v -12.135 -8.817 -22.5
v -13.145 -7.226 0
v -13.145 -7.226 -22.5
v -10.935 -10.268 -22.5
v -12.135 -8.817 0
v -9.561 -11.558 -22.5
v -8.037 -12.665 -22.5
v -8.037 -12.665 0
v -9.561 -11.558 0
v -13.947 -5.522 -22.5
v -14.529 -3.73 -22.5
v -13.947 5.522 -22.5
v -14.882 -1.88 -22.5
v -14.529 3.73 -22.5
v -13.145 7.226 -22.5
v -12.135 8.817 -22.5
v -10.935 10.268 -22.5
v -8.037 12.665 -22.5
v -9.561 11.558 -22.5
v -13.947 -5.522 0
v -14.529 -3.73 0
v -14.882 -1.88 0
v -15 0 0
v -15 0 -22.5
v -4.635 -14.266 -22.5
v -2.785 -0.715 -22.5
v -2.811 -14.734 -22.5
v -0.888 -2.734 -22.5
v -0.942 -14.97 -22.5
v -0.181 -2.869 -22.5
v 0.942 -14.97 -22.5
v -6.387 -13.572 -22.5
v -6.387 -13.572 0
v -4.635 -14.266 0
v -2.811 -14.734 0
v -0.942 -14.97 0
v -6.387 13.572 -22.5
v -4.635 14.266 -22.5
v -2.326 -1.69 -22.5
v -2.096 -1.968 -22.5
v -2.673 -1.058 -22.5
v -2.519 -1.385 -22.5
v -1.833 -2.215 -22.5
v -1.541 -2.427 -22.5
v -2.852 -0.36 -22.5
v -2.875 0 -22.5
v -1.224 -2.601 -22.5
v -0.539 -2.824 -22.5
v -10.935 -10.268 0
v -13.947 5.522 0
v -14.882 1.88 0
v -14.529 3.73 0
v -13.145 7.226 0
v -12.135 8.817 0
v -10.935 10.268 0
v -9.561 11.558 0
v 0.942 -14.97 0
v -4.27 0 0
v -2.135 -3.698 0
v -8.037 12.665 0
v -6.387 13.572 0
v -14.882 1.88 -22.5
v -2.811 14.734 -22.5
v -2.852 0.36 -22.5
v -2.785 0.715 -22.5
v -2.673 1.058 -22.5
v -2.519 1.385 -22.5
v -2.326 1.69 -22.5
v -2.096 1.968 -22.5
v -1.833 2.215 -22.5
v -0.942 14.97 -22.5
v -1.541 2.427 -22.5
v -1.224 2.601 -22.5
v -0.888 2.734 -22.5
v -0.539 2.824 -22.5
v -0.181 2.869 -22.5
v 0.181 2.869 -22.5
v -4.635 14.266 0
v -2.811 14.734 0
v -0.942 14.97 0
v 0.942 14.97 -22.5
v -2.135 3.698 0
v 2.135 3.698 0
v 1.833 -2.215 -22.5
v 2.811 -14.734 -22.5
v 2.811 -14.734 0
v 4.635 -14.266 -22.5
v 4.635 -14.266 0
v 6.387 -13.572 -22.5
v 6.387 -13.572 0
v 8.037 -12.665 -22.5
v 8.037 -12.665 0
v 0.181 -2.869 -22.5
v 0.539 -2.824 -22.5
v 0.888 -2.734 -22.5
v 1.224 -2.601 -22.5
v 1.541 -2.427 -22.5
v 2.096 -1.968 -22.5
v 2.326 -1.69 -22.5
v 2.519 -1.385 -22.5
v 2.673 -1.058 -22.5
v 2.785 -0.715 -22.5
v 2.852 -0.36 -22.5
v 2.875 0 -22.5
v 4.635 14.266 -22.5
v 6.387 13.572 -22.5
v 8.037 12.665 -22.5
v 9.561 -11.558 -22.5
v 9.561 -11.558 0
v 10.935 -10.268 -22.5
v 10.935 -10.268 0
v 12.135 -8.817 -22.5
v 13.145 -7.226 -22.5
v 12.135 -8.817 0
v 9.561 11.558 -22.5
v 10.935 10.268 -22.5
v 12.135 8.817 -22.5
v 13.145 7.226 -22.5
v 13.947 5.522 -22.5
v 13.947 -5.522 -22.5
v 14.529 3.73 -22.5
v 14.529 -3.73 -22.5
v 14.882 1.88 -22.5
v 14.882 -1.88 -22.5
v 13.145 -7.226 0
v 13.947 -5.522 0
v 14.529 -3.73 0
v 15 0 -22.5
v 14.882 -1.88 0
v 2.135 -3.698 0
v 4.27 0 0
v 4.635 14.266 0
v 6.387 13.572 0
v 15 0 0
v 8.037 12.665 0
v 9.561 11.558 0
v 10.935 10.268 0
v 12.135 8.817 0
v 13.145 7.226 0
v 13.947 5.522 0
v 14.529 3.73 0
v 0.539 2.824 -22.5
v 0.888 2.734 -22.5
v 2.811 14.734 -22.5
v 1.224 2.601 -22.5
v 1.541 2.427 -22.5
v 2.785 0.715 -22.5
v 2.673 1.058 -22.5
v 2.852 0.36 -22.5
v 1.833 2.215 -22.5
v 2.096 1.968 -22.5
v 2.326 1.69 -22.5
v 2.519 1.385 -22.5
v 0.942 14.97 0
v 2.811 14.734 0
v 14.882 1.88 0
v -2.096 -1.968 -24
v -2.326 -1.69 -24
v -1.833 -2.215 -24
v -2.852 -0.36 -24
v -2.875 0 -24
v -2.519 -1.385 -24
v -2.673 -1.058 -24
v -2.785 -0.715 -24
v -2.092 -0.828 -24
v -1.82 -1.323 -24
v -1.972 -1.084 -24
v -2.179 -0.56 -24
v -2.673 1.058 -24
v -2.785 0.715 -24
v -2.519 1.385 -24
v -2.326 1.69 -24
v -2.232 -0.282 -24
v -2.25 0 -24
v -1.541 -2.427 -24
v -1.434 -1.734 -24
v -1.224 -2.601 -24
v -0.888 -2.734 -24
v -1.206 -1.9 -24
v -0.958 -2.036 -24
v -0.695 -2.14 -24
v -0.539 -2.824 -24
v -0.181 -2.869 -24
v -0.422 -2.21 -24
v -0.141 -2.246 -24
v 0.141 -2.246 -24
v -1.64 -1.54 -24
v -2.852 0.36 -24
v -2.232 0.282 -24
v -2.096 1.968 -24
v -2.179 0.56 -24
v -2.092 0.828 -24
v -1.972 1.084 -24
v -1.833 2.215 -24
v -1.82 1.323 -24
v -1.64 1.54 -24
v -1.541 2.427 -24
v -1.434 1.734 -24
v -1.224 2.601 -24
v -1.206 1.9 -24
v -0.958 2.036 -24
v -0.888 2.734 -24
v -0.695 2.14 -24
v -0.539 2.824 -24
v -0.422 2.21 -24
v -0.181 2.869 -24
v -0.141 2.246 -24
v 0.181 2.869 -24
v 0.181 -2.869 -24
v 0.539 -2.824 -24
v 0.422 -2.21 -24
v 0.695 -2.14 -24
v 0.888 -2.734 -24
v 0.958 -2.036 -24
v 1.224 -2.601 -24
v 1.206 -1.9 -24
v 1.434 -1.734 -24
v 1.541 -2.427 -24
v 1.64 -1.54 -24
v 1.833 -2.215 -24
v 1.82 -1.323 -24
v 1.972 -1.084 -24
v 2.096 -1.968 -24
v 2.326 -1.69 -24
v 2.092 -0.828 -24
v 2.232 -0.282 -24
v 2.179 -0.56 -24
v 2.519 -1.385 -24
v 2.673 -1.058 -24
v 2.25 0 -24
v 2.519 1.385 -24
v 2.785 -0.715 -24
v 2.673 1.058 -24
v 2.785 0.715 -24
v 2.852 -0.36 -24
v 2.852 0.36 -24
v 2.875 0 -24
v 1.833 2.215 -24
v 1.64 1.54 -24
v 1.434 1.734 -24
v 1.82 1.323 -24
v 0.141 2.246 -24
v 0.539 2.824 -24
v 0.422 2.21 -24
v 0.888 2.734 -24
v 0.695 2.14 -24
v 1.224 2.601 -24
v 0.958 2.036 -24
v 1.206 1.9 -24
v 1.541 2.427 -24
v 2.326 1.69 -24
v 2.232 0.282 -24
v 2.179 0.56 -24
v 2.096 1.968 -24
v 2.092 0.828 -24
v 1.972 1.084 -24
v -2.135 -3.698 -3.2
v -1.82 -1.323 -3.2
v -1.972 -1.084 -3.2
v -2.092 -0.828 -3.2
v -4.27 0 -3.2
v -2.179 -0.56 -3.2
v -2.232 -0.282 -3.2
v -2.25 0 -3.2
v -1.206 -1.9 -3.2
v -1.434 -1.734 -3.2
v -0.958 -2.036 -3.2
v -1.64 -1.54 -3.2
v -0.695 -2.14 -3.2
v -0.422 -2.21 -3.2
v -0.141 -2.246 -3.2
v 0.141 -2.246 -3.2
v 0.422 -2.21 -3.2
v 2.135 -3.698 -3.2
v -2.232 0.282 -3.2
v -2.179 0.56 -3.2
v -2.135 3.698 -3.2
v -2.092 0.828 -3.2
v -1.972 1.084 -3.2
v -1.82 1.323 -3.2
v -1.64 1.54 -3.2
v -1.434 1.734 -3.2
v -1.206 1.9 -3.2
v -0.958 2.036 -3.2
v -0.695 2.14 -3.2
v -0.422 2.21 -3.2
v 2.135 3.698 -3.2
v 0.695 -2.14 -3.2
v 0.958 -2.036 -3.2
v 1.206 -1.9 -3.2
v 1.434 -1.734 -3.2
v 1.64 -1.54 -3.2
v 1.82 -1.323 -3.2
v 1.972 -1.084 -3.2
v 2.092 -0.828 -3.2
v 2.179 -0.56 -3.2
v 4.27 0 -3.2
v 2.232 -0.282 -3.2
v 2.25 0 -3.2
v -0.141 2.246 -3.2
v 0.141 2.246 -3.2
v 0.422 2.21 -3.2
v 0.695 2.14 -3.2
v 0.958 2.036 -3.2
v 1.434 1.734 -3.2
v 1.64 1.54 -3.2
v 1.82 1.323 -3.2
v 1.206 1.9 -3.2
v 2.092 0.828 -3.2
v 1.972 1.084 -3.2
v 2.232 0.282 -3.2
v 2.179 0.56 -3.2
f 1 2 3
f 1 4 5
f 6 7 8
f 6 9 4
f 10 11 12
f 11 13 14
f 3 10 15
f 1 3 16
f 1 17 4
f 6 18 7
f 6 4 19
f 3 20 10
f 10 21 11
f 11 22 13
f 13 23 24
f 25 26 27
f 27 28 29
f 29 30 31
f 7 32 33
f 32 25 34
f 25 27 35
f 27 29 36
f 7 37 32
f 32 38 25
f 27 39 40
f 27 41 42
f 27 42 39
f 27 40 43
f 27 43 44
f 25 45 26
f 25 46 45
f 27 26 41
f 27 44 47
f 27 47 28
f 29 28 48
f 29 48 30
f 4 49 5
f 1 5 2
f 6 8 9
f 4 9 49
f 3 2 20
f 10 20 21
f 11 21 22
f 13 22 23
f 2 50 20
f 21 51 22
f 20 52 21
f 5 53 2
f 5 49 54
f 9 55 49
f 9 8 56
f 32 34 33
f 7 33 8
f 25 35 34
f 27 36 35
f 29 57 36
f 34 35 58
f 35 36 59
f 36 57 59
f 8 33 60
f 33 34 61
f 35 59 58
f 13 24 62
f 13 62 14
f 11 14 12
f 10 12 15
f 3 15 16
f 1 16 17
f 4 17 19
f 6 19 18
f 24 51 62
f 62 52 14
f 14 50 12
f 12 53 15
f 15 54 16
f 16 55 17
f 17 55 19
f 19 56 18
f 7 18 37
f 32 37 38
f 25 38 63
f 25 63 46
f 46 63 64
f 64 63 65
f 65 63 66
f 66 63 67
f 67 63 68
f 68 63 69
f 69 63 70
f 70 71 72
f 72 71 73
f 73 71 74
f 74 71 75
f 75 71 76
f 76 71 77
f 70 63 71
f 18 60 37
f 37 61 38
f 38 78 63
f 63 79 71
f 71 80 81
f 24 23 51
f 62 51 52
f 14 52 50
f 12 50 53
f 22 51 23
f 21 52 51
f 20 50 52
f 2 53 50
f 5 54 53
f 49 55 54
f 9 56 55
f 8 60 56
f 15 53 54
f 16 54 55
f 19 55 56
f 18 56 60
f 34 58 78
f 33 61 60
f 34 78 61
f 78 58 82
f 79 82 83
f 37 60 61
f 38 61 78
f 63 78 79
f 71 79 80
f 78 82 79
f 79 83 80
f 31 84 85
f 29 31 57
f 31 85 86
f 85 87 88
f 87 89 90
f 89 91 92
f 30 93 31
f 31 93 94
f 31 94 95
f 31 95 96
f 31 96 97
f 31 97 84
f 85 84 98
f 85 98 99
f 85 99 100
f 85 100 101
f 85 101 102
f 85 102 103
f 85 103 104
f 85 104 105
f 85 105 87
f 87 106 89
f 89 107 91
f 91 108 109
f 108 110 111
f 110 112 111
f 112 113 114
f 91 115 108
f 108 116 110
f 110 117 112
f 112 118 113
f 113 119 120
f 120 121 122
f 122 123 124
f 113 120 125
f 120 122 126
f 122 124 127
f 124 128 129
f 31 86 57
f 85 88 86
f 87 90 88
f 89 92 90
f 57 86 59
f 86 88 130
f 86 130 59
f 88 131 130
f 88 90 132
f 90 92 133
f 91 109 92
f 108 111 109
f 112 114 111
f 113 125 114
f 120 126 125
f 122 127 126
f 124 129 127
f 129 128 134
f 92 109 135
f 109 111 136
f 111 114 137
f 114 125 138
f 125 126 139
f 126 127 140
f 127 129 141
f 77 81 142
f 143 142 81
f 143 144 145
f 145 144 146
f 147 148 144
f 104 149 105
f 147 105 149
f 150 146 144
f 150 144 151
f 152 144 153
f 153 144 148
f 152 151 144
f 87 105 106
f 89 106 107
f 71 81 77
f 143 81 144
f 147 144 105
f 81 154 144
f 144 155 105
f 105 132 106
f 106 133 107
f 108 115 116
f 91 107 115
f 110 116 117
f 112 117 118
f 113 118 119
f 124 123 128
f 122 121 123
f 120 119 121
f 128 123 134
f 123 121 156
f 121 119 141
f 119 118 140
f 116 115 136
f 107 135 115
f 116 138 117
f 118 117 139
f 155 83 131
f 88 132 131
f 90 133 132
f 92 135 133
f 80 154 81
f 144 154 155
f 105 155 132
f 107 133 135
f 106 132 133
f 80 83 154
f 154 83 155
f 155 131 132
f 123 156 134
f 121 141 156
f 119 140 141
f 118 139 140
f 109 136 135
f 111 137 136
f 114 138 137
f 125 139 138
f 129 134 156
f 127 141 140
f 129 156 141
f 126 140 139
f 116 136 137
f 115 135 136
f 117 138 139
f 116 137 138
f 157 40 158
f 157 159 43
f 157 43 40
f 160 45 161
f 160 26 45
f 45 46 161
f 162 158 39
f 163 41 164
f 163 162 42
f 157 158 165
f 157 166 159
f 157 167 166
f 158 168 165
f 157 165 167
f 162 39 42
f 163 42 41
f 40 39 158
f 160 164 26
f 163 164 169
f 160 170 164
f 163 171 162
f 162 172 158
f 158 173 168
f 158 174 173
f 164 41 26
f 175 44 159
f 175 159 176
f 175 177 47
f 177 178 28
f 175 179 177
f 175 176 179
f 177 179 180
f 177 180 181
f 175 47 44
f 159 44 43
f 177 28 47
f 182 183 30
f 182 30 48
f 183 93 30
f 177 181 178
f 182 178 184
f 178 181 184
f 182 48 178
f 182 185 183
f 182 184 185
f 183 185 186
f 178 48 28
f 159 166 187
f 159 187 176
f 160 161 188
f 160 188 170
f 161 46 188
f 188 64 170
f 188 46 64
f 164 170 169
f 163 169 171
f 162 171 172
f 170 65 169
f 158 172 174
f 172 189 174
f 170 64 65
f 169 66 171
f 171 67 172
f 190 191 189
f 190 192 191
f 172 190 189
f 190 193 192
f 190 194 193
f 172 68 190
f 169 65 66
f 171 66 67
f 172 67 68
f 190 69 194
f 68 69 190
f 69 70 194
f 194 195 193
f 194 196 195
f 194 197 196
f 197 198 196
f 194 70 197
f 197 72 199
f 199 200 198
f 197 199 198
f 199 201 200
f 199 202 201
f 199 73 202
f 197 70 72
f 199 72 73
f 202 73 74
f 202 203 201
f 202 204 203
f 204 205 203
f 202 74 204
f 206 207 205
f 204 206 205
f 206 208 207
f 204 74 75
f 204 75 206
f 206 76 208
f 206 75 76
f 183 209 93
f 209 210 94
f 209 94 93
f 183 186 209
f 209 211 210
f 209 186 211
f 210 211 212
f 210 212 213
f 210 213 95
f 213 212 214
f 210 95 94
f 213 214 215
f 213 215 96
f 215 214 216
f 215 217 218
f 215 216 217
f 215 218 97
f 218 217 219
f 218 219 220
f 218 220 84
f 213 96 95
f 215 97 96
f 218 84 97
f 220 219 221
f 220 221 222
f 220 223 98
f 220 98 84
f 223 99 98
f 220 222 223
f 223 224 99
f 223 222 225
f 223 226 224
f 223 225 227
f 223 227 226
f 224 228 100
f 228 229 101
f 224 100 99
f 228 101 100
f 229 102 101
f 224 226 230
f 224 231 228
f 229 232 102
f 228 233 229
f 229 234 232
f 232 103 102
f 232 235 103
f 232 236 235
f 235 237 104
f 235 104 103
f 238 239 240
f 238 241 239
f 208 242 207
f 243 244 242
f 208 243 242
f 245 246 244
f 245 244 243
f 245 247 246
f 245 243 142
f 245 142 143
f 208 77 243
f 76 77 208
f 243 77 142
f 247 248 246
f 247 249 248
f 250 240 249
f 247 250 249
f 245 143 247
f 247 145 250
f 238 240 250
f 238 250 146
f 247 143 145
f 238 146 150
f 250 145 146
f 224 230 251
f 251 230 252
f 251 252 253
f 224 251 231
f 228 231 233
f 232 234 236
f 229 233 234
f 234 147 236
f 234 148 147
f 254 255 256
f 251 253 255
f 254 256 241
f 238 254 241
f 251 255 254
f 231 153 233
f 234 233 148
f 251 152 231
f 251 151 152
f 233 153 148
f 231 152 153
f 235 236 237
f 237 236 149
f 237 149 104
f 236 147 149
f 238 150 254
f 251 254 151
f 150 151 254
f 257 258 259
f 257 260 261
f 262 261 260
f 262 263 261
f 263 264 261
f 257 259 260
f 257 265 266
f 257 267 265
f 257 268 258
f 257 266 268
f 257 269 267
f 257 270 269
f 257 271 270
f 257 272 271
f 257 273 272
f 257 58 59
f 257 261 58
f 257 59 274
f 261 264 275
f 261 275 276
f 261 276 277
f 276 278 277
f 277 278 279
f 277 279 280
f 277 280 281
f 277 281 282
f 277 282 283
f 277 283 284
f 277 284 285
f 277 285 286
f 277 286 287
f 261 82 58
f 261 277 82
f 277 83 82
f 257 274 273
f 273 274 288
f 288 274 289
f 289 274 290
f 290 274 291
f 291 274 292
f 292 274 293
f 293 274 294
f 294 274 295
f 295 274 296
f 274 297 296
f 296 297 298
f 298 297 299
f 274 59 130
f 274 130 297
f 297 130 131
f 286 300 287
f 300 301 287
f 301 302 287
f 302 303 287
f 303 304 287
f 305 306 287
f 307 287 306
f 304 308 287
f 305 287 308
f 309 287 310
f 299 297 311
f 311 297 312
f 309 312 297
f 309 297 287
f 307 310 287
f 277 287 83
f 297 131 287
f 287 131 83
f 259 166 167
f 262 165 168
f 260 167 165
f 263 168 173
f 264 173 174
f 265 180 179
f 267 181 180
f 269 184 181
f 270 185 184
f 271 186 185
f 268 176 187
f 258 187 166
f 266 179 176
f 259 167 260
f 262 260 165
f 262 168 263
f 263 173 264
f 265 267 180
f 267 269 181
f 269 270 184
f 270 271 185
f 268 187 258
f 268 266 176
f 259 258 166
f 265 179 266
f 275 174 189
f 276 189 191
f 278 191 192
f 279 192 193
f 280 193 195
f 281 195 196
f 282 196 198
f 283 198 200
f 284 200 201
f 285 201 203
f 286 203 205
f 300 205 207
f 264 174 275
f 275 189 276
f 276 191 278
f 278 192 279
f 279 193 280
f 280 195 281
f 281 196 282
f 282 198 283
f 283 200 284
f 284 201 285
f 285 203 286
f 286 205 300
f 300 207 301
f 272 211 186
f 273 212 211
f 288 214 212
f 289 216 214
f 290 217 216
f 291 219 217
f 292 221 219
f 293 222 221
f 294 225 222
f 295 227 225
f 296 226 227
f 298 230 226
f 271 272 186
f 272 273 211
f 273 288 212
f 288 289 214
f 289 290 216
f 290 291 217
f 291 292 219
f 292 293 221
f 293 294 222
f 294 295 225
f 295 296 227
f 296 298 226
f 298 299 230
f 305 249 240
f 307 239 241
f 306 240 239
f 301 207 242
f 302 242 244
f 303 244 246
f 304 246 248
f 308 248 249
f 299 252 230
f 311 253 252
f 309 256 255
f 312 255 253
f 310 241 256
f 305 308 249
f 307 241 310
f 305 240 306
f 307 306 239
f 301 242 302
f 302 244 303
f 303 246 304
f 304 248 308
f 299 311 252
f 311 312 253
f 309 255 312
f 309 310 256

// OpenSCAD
$fn = 50;

difference() {
	union() {
		translate(v = [0, 0, -22.5]) {
			cylinder(h = 22.5, r = 15.0);
		}
		#translate(v = [0, 0, -24.0]) {
			cylinder(h = 24, r = 2.875);
		}
	}
	union() {
		translate(v = [0, 0, 0]) {
			rotate(a = [0, 0, 0]) {
				difference() {
					union() {
						translate(v = [0, 0, -3.2]) {
							linear_extrude(height = 3.2) {
								polygon(points = [[4.2698, 0.0], [2.1349000000000005, 3.697755269078796], [-2.134899999999999, 3.6977552690787965], [-4.2698, 5.228996902999369e-16], [-2.134900000000002, -3.6977552690787956], [2.1348999999999974, -3.697755269078798]]);
							}
						}
					}
					union();
				}
			}
		}
		#translate(v = [0, 0, -100.0]) {
			cylinder(h = 200, r = 2.25);
		}
	}
}
